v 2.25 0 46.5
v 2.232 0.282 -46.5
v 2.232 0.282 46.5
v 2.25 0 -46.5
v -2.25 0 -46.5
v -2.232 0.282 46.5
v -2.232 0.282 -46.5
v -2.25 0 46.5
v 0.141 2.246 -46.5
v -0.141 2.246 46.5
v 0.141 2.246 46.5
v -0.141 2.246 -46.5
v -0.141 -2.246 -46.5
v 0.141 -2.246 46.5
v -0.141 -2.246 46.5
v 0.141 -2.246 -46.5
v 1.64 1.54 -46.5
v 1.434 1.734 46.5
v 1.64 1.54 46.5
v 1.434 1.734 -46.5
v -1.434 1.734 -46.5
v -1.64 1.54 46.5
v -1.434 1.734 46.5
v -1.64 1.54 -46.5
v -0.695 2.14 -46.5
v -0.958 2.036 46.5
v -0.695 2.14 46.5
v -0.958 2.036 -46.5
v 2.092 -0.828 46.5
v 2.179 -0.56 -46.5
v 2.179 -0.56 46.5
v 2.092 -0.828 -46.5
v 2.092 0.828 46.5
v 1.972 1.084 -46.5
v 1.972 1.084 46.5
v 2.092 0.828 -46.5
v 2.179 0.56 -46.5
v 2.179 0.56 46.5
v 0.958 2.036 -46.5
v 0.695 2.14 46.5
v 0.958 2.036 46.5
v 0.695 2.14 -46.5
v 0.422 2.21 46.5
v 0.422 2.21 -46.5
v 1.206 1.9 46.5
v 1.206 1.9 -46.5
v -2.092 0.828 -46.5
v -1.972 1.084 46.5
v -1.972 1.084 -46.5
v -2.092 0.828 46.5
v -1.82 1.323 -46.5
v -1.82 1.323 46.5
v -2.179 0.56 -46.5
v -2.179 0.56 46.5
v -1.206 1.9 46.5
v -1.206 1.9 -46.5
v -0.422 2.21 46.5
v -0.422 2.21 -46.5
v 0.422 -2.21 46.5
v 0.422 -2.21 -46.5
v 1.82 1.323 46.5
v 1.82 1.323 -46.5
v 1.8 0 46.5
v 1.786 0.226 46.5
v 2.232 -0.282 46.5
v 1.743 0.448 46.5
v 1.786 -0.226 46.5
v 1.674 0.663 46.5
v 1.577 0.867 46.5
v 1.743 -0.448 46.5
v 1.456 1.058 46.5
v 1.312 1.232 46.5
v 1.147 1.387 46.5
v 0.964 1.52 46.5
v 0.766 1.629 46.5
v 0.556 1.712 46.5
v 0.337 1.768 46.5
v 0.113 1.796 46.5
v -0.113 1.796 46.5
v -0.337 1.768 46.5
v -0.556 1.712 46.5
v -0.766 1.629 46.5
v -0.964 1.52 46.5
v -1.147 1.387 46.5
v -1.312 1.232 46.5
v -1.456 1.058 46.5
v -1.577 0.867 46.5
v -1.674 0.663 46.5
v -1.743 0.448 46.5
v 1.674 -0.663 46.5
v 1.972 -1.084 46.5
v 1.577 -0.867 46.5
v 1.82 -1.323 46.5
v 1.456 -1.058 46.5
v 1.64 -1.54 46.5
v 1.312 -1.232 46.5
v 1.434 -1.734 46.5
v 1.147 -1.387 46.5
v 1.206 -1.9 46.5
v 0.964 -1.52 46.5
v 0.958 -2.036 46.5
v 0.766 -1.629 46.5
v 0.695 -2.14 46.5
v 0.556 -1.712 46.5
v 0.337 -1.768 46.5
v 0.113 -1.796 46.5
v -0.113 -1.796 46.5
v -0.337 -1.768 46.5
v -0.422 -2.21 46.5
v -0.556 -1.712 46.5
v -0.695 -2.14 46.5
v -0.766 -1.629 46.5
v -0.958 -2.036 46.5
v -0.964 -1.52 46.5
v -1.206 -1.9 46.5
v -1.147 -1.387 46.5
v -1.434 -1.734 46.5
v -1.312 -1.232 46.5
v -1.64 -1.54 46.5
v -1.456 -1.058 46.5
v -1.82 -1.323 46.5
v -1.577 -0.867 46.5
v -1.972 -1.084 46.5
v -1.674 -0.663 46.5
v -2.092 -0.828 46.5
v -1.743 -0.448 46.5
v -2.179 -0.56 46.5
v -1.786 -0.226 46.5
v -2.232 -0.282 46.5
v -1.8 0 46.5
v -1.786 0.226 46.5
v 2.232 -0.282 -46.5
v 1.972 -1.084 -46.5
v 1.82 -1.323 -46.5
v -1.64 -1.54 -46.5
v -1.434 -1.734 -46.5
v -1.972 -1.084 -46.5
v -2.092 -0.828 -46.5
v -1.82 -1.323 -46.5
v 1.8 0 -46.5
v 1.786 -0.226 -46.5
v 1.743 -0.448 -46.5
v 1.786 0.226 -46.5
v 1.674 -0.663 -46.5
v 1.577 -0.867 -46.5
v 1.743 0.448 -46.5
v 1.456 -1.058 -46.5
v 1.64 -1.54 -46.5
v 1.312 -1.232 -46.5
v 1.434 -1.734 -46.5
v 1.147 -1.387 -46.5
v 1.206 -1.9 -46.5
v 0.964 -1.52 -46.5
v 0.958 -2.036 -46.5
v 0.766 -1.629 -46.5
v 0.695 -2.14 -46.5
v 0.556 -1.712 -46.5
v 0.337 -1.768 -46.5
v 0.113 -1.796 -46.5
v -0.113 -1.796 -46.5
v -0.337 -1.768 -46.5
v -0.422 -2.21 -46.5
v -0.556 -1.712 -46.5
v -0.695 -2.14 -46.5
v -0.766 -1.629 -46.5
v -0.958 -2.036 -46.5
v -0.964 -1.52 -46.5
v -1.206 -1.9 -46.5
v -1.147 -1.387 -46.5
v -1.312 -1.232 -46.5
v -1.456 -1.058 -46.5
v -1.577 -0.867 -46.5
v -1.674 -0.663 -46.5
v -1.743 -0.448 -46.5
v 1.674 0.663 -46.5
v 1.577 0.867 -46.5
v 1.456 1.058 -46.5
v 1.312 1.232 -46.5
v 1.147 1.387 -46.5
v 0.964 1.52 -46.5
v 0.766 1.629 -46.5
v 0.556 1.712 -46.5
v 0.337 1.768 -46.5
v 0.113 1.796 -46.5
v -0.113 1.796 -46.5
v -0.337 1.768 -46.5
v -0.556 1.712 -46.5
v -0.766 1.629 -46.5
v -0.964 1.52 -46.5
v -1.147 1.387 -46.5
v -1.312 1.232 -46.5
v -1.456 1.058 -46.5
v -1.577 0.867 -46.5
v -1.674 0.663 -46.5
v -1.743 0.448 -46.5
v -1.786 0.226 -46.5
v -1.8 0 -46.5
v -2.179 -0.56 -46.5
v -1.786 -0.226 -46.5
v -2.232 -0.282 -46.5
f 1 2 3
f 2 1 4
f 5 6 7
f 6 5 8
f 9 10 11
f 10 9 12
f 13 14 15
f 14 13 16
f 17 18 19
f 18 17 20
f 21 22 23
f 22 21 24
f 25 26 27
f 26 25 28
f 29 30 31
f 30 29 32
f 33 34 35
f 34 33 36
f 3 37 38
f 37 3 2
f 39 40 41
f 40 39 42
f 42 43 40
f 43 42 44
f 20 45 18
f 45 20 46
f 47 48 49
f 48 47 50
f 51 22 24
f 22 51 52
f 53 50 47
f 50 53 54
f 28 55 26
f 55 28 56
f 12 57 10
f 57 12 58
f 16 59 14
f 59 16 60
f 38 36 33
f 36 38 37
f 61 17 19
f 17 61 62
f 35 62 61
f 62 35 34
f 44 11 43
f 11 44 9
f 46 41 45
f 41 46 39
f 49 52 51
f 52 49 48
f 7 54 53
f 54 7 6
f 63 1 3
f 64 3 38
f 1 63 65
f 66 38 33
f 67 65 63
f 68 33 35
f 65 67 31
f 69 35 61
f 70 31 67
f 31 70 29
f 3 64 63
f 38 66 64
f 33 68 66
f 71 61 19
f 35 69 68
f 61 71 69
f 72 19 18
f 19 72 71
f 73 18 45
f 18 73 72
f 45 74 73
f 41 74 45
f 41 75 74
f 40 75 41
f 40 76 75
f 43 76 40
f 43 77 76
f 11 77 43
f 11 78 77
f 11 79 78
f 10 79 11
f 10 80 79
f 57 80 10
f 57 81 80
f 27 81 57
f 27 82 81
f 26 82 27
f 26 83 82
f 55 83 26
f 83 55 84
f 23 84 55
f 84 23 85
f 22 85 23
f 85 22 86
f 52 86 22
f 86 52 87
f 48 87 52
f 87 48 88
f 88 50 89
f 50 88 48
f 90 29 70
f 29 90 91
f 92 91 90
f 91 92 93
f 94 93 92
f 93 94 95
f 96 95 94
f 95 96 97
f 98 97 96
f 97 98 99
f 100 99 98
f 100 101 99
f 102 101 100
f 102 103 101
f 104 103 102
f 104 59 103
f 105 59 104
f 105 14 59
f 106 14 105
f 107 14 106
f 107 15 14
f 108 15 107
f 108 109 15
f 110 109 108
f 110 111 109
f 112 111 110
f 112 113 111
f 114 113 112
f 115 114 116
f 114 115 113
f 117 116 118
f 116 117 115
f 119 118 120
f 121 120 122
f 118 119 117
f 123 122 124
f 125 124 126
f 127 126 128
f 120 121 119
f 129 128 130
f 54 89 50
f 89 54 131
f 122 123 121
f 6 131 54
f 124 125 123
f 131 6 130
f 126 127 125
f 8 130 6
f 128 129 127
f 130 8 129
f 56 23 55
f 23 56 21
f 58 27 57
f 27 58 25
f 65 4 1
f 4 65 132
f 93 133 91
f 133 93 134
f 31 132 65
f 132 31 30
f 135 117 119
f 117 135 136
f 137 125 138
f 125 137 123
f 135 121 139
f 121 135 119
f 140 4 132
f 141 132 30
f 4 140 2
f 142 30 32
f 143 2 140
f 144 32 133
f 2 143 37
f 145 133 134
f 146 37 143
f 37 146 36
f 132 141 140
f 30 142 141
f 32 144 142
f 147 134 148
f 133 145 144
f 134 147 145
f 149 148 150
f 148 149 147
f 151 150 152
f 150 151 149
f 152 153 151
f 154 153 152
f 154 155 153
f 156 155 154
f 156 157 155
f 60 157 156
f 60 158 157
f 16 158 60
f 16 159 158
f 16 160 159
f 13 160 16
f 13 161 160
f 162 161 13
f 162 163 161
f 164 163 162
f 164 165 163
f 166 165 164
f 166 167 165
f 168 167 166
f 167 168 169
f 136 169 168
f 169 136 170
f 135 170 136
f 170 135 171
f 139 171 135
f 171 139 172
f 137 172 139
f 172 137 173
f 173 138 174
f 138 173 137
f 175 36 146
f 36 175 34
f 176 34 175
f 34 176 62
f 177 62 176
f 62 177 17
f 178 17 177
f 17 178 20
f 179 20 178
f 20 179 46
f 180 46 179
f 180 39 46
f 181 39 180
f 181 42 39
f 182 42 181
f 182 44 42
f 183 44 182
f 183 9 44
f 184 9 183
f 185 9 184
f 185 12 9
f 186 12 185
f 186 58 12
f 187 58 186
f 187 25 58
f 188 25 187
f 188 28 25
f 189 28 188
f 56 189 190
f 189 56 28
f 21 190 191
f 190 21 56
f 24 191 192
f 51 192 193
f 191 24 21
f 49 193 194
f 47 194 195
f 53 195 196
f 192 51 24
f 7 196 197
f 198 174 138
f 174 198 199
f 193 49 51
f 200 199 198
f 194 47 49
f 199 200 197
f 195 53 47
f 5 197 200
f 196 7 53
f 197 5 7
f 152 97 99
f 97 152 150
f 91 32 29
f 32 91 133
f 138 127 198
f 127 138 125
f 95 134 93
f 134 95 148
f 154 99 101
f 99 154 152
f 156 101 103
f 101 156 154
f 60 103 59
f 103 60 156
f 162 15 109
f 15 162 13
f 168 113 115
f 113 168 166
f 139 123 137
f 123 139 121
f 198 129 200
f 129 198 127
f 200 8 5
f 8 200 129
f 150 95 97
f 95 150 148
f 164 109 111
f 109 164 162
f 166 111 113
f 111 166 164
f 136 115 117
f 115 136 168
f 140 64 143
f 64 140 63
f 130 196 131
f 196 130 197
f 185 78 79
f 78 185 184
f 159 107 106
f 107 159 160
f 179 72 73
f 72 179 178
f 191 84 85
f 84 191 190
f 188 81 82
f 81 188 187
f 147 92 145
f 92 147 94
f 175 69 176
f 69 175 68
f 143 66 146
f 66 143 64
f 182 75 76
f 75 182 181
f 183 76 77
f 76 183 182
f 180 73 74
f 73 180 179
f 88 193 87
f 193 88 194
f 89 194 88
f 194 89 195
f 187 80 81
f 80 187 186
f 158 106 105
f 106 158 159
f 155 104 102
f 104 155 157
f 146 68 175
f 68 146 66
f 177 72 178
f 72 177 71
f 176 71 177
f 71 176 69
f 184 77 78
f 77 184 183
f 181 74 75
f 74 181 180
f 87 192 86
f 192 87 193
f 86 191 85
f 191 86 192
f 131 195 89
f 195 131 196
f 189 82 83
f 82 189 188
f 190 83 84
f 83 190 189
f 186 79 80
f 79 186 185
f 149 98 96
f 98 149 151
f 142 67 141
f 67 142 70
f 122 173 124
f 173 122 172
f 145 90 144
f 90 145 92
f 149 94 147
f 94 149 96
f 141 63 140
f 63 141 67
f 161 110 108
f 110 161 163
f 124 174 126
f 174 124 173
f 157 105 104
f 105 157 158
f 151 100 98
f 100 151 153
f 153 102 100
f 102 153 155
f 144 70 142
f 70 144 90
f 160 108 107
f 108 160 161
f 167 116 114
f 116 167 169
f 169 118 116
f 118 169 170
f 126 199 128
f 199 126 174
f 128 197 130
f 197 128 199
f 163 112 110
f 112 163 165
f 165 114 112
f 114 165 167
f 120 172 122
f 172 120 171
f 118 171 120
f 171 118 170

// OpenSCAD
$fn = 50;


difference() {
	union() {
		translate(v = [0, 0, -46.5000000000]) {
			cylinder(h = 93, r = 2.2500000000);
		}
	}
	union() {
		translate(v = [0, 0, -100.0000000000]) {
			cylinder(h = 200, r = 1.8000000000);
		}
	}
}
